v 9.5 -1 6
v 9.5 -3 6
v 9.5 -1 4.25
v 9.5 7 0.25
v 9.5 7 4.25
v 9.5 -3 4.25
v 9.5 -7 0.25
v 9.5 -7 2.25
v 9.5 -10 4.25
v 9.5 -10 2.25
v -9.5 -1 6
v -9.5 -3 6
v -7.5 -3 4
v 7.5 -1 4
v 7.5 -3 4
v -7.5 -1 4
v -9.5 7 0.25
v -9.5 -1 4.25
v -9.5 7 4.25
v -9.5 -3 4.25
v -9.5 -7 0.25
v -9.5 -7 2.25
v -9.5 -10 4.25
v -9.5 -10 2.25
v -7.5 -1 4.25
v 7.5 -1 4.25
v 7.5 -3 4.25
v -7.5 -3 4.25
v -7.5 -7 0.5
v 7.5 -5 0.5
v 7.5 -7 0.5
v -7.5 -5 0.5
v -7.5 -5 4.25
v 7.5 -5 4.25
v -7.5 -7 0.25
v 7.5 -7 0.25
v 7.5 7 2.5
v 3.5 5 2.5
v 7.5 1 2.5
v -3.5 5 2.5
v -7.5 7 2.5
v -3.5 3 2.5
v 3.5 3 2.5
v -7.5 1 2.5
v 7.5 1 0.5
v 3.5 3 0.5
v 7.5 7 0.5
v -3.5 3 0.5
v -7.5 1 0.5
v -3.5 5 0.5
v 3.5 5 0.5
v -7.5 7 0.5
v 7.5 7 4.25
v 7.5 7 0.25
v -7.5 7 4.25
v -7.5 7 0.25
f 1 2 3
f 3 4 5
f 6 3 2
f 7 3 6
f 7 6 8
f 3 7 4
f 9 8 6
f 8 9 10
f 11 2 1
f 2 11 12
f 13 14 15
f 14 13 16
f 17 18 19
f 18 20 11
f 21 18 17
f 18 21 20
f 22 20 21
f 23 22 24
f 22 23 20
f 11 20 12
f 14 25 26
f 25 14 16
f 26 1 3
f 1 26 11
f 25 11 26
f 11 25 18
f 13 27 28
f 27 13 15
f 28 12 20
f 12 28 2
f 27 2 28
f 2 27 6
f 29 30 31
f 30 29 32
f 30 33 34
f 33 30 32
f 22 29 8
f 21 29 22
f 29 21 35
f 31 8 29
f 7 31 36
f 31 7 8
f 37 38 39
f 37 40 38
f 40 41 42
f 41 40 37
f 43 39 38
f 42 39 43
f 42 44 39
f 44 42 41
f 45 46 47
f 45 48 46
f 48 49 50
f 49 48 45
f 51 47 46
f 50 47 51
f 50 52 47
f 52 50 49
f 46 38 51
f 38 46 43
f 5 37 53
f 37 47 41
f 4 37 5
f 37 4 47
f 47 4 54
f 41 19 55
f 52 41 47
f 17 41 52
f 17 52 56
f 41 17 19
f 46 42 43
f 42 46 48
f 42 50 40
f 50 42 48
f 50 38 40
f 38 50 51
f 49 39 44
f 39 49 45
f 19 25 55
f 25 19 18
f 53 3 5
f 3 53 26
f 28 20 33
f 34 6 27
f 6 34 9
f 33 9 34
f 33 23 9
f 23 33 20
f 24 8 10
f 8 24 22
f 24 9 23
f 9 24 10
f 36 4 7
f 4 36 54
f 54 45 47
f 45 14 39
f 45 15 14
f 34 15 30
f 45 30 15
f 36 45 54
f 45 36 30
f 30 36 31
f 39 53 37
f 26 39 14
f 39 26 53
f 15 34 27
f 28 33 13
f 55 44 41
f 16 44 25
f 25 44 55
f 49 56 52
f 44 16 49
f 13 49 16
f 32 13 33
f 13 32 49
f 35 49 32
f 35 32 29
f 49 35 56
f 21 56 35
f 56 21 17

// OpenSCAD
translate([0, -2, 5]) {
    cube(size = [19, 2, 2], center=true);
}
translate([0, -6, 1.5]) {
    cube(size = [19, 2, 2], center=true);
}
translate([6, 5, 1.5]) {
    cube(size = [5, 4, 2], center=true);
}
translate([-6, 5, 1.5]) {
    cube(size = [5, 4, 2], center=true);
}
translate([0, 6, 1.5]) {
    cube(size = [19, 2, 2], center=true);
}
translate([0, 2, 1.5]) {
    cube(size = [19, 2, 2], center=true);
}
translate([0, -7.5, 3.25]) {
    cube(size = [19, 5, 2], center=true);
}
translate([8.5, 0, 2.25]) {
    cube(size = [2, 14, 4], center=true);
}
translate([-8.5, 0, 2.25]) {
    cube(size = [2, 14, 4], center=true);
}
